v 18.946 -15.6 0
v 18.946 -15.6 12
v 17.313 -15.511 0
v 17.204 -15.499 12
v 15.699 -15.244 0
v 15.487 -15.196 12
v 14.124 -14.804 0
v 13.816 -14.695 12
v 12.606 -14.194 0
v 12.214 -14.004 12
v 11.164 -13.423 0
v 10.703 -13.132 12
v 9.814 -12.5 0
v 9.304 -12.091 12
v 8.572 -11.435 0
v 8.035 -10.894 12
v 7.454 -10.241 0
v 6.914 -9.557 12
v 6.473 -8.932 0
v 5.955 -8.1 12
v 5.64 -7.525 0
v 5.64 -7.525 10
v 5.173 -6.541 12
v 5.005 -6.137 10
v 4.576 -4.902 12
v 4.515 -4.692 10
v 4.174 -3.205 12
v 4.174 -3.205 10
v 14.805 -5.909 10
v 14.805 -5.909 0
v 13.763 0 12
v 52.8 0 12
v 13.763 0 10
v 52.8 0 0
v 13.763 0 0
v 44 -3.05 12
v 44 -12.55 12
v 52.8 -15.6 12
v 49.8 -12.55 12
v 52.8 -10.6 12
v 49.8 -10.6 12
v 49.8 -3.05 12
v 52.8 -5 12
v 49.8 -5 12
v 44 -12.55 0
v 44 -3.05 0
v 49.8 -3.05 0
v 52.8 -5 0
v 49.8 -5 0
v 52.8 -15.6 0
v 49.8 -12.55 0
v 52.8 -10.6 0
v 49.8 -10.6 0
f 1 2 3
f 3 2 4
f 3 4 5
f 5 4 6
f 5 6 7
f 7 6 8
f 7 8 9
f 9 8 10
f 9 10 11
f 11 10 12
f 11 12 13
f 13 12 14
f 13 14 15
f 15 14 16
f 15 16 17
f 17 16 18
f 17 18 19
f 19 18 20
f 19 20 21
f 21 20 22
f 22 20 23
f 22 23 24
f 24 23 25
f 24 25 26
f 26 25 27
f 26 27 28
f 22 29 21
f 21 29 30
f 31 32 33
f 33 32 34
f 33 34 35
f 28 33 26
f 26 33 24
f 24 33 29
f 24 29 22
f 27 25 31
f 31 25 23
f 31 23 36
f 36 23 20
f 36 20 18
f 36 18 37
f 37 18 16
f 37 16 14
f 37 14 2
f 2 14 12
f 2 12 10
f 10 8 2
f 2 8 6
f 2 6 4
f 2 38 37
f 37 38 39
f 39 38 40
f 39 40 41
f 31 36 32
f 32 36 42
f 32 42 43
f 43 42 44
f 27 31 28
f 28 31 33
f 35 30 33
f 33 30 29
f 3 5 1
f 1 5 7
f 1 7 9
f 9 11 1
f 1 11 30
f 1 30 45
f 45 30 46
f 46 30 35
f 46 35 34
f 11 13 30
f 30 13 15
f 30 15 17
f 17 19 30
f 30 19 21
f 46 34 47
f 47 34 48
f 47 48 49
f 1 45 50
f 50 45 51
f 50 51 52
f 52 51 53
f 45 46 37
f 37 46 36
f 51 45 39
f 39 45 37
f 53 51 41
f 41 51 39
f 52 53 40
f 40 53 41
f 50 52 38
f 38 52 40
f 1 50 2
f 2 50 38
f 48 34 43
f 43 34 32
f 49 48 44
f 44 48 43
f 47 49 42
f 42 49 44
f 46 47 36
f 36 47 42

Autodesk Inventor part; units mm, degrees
ref_plane "YZ Plane" through (0, 0, 0) normal (1, 0, 0) x (0, 1, 0)
ref_plane "XZ Plane" through (0, 0, 0) normal (0, 1, 0) x (-1, 0, 0)
ref_plane "XY Plane" through (0, 0, 0) normal (0, 0, 1) x (1, 0, 0)
sketch "Sketch5" plane through (0, 0, 0) normal (0, 0, 1) x (1, 0, 0)
  line L0 (52.8, -15.6) -> (52.8, -10.6)
  line L1 (52.8, -10.6) -> (49.8, -10.6)
  line L2 (49.8, -10.6) -> (49.8, -12.55)
  line L3 (44, -12.55) -> (44, -3.05)
  line L4 (49.8, -3.05) -> (49.8, -5)
  line L5 (49.8, -5) -> (52.8, -5)
  line L6 (52.8, -5) -> (52.8, 0)
  line L7 (52.8, 0) -> (7.8, 0)
  line L8 (44, -3.05) -> (49.8, -3.05)
  line L9 (44, -12.55) -> (49.8, -12.55)
  line L10 (52.8, -15.6) -> (7.8, -15.6)
  arc A0 (7.8, 0) -> (7.8, -15.6) centre (7.8, -7.8) ccw
  point P0 (0, 0)
  dimension "d41" = 5.8
  dimension "d48" = 44
  dimension "d50" = 3
  dimension "d63" = 45
  dimension "d67" = 15.6
  dimension "d71" = 0
  dimension "d72" = 36.2
  dimension "d87" = 5.6
  dimension "d88" = 9.5
extrude "Extrusion2" add sketch "Sketch5" along normal blind 12
sketch "Sketch11" plane through (0, 0, 12) normal (0, 0, 1) x (1, 0, 0)
  line L0 (52.8, 0) -> (7.8, 0) projected
  line L1 (13.7629, 0) -> (14.8048, -5.9088)
  line L2 (14.8048, -5.9088) -> (0.0327, -8.5136)
  arc A0 (7.8, 0) -> (7.8, -15.6) centre (7.8, -7.8) ccw projected
  point P0 (0, 0)
  dimension "d95" = 100
  dimension "d96" = 6
  dimension "d97" = 15
extrude "Extrusion7" cut sketch "Sketch11" along normal blind 10 from surface at -12
sketch "Sketch14" plane through (0, 0, 12) normal (0, 0, 1) x (1, 0, 0)
  line L0 (2.7571, 4.8295) -> (7.0478, -19.5045)
  line L1 (7.0478, -19.5045) -> (-13.9668, -23.21)
  line L2 (-13.9668, -23.21) -> (-18.2576, 1.124)
  line L3 (-18.2576, 1.124) -> (2.7571, 4.8295)
  line L4 (13.7629, 0) -> (14.8048, -5.9088) projected
  point P0 (0, 0)
  dimension "d111" = 10
extrude "Extrusion10" cut sketch "Sketch14" against normal through all
fillet "Fillet2" radius 15 1 edges at (6.3349, -15.4612, 6)
sketch "Sketch15" plane through (13.7629, 0, 10) normal (0, 0, -1) x (-1, 0, 0)
  line L0 (-39.0371, 0) -> (0, 0) projected
  arc A0 (-5.1829, -15.6) -> (9.5892, -3.2047) centre (-5.1829, -0.6) ccw projected
  line L1 (0, 0) -> (9.5892, -3.2047)
  line L2 (0, 0) -> (5.9629, 0) projected
  arc A1 (9.96, -1.102) -> (5.9629, 0) centre (5.9629, -7.8) ccw projected
  line L3 (9.5892, -3.2047) -> (9.96, -1.102) projected
  point P0 (13.7629, 0)
extrude "Extrusion11" cut sketch "Sketch15" against normal blind 10
equation "\"l1\" = 8"
properties part number "Finray_test_8_Kerbe_10deg_V4"
